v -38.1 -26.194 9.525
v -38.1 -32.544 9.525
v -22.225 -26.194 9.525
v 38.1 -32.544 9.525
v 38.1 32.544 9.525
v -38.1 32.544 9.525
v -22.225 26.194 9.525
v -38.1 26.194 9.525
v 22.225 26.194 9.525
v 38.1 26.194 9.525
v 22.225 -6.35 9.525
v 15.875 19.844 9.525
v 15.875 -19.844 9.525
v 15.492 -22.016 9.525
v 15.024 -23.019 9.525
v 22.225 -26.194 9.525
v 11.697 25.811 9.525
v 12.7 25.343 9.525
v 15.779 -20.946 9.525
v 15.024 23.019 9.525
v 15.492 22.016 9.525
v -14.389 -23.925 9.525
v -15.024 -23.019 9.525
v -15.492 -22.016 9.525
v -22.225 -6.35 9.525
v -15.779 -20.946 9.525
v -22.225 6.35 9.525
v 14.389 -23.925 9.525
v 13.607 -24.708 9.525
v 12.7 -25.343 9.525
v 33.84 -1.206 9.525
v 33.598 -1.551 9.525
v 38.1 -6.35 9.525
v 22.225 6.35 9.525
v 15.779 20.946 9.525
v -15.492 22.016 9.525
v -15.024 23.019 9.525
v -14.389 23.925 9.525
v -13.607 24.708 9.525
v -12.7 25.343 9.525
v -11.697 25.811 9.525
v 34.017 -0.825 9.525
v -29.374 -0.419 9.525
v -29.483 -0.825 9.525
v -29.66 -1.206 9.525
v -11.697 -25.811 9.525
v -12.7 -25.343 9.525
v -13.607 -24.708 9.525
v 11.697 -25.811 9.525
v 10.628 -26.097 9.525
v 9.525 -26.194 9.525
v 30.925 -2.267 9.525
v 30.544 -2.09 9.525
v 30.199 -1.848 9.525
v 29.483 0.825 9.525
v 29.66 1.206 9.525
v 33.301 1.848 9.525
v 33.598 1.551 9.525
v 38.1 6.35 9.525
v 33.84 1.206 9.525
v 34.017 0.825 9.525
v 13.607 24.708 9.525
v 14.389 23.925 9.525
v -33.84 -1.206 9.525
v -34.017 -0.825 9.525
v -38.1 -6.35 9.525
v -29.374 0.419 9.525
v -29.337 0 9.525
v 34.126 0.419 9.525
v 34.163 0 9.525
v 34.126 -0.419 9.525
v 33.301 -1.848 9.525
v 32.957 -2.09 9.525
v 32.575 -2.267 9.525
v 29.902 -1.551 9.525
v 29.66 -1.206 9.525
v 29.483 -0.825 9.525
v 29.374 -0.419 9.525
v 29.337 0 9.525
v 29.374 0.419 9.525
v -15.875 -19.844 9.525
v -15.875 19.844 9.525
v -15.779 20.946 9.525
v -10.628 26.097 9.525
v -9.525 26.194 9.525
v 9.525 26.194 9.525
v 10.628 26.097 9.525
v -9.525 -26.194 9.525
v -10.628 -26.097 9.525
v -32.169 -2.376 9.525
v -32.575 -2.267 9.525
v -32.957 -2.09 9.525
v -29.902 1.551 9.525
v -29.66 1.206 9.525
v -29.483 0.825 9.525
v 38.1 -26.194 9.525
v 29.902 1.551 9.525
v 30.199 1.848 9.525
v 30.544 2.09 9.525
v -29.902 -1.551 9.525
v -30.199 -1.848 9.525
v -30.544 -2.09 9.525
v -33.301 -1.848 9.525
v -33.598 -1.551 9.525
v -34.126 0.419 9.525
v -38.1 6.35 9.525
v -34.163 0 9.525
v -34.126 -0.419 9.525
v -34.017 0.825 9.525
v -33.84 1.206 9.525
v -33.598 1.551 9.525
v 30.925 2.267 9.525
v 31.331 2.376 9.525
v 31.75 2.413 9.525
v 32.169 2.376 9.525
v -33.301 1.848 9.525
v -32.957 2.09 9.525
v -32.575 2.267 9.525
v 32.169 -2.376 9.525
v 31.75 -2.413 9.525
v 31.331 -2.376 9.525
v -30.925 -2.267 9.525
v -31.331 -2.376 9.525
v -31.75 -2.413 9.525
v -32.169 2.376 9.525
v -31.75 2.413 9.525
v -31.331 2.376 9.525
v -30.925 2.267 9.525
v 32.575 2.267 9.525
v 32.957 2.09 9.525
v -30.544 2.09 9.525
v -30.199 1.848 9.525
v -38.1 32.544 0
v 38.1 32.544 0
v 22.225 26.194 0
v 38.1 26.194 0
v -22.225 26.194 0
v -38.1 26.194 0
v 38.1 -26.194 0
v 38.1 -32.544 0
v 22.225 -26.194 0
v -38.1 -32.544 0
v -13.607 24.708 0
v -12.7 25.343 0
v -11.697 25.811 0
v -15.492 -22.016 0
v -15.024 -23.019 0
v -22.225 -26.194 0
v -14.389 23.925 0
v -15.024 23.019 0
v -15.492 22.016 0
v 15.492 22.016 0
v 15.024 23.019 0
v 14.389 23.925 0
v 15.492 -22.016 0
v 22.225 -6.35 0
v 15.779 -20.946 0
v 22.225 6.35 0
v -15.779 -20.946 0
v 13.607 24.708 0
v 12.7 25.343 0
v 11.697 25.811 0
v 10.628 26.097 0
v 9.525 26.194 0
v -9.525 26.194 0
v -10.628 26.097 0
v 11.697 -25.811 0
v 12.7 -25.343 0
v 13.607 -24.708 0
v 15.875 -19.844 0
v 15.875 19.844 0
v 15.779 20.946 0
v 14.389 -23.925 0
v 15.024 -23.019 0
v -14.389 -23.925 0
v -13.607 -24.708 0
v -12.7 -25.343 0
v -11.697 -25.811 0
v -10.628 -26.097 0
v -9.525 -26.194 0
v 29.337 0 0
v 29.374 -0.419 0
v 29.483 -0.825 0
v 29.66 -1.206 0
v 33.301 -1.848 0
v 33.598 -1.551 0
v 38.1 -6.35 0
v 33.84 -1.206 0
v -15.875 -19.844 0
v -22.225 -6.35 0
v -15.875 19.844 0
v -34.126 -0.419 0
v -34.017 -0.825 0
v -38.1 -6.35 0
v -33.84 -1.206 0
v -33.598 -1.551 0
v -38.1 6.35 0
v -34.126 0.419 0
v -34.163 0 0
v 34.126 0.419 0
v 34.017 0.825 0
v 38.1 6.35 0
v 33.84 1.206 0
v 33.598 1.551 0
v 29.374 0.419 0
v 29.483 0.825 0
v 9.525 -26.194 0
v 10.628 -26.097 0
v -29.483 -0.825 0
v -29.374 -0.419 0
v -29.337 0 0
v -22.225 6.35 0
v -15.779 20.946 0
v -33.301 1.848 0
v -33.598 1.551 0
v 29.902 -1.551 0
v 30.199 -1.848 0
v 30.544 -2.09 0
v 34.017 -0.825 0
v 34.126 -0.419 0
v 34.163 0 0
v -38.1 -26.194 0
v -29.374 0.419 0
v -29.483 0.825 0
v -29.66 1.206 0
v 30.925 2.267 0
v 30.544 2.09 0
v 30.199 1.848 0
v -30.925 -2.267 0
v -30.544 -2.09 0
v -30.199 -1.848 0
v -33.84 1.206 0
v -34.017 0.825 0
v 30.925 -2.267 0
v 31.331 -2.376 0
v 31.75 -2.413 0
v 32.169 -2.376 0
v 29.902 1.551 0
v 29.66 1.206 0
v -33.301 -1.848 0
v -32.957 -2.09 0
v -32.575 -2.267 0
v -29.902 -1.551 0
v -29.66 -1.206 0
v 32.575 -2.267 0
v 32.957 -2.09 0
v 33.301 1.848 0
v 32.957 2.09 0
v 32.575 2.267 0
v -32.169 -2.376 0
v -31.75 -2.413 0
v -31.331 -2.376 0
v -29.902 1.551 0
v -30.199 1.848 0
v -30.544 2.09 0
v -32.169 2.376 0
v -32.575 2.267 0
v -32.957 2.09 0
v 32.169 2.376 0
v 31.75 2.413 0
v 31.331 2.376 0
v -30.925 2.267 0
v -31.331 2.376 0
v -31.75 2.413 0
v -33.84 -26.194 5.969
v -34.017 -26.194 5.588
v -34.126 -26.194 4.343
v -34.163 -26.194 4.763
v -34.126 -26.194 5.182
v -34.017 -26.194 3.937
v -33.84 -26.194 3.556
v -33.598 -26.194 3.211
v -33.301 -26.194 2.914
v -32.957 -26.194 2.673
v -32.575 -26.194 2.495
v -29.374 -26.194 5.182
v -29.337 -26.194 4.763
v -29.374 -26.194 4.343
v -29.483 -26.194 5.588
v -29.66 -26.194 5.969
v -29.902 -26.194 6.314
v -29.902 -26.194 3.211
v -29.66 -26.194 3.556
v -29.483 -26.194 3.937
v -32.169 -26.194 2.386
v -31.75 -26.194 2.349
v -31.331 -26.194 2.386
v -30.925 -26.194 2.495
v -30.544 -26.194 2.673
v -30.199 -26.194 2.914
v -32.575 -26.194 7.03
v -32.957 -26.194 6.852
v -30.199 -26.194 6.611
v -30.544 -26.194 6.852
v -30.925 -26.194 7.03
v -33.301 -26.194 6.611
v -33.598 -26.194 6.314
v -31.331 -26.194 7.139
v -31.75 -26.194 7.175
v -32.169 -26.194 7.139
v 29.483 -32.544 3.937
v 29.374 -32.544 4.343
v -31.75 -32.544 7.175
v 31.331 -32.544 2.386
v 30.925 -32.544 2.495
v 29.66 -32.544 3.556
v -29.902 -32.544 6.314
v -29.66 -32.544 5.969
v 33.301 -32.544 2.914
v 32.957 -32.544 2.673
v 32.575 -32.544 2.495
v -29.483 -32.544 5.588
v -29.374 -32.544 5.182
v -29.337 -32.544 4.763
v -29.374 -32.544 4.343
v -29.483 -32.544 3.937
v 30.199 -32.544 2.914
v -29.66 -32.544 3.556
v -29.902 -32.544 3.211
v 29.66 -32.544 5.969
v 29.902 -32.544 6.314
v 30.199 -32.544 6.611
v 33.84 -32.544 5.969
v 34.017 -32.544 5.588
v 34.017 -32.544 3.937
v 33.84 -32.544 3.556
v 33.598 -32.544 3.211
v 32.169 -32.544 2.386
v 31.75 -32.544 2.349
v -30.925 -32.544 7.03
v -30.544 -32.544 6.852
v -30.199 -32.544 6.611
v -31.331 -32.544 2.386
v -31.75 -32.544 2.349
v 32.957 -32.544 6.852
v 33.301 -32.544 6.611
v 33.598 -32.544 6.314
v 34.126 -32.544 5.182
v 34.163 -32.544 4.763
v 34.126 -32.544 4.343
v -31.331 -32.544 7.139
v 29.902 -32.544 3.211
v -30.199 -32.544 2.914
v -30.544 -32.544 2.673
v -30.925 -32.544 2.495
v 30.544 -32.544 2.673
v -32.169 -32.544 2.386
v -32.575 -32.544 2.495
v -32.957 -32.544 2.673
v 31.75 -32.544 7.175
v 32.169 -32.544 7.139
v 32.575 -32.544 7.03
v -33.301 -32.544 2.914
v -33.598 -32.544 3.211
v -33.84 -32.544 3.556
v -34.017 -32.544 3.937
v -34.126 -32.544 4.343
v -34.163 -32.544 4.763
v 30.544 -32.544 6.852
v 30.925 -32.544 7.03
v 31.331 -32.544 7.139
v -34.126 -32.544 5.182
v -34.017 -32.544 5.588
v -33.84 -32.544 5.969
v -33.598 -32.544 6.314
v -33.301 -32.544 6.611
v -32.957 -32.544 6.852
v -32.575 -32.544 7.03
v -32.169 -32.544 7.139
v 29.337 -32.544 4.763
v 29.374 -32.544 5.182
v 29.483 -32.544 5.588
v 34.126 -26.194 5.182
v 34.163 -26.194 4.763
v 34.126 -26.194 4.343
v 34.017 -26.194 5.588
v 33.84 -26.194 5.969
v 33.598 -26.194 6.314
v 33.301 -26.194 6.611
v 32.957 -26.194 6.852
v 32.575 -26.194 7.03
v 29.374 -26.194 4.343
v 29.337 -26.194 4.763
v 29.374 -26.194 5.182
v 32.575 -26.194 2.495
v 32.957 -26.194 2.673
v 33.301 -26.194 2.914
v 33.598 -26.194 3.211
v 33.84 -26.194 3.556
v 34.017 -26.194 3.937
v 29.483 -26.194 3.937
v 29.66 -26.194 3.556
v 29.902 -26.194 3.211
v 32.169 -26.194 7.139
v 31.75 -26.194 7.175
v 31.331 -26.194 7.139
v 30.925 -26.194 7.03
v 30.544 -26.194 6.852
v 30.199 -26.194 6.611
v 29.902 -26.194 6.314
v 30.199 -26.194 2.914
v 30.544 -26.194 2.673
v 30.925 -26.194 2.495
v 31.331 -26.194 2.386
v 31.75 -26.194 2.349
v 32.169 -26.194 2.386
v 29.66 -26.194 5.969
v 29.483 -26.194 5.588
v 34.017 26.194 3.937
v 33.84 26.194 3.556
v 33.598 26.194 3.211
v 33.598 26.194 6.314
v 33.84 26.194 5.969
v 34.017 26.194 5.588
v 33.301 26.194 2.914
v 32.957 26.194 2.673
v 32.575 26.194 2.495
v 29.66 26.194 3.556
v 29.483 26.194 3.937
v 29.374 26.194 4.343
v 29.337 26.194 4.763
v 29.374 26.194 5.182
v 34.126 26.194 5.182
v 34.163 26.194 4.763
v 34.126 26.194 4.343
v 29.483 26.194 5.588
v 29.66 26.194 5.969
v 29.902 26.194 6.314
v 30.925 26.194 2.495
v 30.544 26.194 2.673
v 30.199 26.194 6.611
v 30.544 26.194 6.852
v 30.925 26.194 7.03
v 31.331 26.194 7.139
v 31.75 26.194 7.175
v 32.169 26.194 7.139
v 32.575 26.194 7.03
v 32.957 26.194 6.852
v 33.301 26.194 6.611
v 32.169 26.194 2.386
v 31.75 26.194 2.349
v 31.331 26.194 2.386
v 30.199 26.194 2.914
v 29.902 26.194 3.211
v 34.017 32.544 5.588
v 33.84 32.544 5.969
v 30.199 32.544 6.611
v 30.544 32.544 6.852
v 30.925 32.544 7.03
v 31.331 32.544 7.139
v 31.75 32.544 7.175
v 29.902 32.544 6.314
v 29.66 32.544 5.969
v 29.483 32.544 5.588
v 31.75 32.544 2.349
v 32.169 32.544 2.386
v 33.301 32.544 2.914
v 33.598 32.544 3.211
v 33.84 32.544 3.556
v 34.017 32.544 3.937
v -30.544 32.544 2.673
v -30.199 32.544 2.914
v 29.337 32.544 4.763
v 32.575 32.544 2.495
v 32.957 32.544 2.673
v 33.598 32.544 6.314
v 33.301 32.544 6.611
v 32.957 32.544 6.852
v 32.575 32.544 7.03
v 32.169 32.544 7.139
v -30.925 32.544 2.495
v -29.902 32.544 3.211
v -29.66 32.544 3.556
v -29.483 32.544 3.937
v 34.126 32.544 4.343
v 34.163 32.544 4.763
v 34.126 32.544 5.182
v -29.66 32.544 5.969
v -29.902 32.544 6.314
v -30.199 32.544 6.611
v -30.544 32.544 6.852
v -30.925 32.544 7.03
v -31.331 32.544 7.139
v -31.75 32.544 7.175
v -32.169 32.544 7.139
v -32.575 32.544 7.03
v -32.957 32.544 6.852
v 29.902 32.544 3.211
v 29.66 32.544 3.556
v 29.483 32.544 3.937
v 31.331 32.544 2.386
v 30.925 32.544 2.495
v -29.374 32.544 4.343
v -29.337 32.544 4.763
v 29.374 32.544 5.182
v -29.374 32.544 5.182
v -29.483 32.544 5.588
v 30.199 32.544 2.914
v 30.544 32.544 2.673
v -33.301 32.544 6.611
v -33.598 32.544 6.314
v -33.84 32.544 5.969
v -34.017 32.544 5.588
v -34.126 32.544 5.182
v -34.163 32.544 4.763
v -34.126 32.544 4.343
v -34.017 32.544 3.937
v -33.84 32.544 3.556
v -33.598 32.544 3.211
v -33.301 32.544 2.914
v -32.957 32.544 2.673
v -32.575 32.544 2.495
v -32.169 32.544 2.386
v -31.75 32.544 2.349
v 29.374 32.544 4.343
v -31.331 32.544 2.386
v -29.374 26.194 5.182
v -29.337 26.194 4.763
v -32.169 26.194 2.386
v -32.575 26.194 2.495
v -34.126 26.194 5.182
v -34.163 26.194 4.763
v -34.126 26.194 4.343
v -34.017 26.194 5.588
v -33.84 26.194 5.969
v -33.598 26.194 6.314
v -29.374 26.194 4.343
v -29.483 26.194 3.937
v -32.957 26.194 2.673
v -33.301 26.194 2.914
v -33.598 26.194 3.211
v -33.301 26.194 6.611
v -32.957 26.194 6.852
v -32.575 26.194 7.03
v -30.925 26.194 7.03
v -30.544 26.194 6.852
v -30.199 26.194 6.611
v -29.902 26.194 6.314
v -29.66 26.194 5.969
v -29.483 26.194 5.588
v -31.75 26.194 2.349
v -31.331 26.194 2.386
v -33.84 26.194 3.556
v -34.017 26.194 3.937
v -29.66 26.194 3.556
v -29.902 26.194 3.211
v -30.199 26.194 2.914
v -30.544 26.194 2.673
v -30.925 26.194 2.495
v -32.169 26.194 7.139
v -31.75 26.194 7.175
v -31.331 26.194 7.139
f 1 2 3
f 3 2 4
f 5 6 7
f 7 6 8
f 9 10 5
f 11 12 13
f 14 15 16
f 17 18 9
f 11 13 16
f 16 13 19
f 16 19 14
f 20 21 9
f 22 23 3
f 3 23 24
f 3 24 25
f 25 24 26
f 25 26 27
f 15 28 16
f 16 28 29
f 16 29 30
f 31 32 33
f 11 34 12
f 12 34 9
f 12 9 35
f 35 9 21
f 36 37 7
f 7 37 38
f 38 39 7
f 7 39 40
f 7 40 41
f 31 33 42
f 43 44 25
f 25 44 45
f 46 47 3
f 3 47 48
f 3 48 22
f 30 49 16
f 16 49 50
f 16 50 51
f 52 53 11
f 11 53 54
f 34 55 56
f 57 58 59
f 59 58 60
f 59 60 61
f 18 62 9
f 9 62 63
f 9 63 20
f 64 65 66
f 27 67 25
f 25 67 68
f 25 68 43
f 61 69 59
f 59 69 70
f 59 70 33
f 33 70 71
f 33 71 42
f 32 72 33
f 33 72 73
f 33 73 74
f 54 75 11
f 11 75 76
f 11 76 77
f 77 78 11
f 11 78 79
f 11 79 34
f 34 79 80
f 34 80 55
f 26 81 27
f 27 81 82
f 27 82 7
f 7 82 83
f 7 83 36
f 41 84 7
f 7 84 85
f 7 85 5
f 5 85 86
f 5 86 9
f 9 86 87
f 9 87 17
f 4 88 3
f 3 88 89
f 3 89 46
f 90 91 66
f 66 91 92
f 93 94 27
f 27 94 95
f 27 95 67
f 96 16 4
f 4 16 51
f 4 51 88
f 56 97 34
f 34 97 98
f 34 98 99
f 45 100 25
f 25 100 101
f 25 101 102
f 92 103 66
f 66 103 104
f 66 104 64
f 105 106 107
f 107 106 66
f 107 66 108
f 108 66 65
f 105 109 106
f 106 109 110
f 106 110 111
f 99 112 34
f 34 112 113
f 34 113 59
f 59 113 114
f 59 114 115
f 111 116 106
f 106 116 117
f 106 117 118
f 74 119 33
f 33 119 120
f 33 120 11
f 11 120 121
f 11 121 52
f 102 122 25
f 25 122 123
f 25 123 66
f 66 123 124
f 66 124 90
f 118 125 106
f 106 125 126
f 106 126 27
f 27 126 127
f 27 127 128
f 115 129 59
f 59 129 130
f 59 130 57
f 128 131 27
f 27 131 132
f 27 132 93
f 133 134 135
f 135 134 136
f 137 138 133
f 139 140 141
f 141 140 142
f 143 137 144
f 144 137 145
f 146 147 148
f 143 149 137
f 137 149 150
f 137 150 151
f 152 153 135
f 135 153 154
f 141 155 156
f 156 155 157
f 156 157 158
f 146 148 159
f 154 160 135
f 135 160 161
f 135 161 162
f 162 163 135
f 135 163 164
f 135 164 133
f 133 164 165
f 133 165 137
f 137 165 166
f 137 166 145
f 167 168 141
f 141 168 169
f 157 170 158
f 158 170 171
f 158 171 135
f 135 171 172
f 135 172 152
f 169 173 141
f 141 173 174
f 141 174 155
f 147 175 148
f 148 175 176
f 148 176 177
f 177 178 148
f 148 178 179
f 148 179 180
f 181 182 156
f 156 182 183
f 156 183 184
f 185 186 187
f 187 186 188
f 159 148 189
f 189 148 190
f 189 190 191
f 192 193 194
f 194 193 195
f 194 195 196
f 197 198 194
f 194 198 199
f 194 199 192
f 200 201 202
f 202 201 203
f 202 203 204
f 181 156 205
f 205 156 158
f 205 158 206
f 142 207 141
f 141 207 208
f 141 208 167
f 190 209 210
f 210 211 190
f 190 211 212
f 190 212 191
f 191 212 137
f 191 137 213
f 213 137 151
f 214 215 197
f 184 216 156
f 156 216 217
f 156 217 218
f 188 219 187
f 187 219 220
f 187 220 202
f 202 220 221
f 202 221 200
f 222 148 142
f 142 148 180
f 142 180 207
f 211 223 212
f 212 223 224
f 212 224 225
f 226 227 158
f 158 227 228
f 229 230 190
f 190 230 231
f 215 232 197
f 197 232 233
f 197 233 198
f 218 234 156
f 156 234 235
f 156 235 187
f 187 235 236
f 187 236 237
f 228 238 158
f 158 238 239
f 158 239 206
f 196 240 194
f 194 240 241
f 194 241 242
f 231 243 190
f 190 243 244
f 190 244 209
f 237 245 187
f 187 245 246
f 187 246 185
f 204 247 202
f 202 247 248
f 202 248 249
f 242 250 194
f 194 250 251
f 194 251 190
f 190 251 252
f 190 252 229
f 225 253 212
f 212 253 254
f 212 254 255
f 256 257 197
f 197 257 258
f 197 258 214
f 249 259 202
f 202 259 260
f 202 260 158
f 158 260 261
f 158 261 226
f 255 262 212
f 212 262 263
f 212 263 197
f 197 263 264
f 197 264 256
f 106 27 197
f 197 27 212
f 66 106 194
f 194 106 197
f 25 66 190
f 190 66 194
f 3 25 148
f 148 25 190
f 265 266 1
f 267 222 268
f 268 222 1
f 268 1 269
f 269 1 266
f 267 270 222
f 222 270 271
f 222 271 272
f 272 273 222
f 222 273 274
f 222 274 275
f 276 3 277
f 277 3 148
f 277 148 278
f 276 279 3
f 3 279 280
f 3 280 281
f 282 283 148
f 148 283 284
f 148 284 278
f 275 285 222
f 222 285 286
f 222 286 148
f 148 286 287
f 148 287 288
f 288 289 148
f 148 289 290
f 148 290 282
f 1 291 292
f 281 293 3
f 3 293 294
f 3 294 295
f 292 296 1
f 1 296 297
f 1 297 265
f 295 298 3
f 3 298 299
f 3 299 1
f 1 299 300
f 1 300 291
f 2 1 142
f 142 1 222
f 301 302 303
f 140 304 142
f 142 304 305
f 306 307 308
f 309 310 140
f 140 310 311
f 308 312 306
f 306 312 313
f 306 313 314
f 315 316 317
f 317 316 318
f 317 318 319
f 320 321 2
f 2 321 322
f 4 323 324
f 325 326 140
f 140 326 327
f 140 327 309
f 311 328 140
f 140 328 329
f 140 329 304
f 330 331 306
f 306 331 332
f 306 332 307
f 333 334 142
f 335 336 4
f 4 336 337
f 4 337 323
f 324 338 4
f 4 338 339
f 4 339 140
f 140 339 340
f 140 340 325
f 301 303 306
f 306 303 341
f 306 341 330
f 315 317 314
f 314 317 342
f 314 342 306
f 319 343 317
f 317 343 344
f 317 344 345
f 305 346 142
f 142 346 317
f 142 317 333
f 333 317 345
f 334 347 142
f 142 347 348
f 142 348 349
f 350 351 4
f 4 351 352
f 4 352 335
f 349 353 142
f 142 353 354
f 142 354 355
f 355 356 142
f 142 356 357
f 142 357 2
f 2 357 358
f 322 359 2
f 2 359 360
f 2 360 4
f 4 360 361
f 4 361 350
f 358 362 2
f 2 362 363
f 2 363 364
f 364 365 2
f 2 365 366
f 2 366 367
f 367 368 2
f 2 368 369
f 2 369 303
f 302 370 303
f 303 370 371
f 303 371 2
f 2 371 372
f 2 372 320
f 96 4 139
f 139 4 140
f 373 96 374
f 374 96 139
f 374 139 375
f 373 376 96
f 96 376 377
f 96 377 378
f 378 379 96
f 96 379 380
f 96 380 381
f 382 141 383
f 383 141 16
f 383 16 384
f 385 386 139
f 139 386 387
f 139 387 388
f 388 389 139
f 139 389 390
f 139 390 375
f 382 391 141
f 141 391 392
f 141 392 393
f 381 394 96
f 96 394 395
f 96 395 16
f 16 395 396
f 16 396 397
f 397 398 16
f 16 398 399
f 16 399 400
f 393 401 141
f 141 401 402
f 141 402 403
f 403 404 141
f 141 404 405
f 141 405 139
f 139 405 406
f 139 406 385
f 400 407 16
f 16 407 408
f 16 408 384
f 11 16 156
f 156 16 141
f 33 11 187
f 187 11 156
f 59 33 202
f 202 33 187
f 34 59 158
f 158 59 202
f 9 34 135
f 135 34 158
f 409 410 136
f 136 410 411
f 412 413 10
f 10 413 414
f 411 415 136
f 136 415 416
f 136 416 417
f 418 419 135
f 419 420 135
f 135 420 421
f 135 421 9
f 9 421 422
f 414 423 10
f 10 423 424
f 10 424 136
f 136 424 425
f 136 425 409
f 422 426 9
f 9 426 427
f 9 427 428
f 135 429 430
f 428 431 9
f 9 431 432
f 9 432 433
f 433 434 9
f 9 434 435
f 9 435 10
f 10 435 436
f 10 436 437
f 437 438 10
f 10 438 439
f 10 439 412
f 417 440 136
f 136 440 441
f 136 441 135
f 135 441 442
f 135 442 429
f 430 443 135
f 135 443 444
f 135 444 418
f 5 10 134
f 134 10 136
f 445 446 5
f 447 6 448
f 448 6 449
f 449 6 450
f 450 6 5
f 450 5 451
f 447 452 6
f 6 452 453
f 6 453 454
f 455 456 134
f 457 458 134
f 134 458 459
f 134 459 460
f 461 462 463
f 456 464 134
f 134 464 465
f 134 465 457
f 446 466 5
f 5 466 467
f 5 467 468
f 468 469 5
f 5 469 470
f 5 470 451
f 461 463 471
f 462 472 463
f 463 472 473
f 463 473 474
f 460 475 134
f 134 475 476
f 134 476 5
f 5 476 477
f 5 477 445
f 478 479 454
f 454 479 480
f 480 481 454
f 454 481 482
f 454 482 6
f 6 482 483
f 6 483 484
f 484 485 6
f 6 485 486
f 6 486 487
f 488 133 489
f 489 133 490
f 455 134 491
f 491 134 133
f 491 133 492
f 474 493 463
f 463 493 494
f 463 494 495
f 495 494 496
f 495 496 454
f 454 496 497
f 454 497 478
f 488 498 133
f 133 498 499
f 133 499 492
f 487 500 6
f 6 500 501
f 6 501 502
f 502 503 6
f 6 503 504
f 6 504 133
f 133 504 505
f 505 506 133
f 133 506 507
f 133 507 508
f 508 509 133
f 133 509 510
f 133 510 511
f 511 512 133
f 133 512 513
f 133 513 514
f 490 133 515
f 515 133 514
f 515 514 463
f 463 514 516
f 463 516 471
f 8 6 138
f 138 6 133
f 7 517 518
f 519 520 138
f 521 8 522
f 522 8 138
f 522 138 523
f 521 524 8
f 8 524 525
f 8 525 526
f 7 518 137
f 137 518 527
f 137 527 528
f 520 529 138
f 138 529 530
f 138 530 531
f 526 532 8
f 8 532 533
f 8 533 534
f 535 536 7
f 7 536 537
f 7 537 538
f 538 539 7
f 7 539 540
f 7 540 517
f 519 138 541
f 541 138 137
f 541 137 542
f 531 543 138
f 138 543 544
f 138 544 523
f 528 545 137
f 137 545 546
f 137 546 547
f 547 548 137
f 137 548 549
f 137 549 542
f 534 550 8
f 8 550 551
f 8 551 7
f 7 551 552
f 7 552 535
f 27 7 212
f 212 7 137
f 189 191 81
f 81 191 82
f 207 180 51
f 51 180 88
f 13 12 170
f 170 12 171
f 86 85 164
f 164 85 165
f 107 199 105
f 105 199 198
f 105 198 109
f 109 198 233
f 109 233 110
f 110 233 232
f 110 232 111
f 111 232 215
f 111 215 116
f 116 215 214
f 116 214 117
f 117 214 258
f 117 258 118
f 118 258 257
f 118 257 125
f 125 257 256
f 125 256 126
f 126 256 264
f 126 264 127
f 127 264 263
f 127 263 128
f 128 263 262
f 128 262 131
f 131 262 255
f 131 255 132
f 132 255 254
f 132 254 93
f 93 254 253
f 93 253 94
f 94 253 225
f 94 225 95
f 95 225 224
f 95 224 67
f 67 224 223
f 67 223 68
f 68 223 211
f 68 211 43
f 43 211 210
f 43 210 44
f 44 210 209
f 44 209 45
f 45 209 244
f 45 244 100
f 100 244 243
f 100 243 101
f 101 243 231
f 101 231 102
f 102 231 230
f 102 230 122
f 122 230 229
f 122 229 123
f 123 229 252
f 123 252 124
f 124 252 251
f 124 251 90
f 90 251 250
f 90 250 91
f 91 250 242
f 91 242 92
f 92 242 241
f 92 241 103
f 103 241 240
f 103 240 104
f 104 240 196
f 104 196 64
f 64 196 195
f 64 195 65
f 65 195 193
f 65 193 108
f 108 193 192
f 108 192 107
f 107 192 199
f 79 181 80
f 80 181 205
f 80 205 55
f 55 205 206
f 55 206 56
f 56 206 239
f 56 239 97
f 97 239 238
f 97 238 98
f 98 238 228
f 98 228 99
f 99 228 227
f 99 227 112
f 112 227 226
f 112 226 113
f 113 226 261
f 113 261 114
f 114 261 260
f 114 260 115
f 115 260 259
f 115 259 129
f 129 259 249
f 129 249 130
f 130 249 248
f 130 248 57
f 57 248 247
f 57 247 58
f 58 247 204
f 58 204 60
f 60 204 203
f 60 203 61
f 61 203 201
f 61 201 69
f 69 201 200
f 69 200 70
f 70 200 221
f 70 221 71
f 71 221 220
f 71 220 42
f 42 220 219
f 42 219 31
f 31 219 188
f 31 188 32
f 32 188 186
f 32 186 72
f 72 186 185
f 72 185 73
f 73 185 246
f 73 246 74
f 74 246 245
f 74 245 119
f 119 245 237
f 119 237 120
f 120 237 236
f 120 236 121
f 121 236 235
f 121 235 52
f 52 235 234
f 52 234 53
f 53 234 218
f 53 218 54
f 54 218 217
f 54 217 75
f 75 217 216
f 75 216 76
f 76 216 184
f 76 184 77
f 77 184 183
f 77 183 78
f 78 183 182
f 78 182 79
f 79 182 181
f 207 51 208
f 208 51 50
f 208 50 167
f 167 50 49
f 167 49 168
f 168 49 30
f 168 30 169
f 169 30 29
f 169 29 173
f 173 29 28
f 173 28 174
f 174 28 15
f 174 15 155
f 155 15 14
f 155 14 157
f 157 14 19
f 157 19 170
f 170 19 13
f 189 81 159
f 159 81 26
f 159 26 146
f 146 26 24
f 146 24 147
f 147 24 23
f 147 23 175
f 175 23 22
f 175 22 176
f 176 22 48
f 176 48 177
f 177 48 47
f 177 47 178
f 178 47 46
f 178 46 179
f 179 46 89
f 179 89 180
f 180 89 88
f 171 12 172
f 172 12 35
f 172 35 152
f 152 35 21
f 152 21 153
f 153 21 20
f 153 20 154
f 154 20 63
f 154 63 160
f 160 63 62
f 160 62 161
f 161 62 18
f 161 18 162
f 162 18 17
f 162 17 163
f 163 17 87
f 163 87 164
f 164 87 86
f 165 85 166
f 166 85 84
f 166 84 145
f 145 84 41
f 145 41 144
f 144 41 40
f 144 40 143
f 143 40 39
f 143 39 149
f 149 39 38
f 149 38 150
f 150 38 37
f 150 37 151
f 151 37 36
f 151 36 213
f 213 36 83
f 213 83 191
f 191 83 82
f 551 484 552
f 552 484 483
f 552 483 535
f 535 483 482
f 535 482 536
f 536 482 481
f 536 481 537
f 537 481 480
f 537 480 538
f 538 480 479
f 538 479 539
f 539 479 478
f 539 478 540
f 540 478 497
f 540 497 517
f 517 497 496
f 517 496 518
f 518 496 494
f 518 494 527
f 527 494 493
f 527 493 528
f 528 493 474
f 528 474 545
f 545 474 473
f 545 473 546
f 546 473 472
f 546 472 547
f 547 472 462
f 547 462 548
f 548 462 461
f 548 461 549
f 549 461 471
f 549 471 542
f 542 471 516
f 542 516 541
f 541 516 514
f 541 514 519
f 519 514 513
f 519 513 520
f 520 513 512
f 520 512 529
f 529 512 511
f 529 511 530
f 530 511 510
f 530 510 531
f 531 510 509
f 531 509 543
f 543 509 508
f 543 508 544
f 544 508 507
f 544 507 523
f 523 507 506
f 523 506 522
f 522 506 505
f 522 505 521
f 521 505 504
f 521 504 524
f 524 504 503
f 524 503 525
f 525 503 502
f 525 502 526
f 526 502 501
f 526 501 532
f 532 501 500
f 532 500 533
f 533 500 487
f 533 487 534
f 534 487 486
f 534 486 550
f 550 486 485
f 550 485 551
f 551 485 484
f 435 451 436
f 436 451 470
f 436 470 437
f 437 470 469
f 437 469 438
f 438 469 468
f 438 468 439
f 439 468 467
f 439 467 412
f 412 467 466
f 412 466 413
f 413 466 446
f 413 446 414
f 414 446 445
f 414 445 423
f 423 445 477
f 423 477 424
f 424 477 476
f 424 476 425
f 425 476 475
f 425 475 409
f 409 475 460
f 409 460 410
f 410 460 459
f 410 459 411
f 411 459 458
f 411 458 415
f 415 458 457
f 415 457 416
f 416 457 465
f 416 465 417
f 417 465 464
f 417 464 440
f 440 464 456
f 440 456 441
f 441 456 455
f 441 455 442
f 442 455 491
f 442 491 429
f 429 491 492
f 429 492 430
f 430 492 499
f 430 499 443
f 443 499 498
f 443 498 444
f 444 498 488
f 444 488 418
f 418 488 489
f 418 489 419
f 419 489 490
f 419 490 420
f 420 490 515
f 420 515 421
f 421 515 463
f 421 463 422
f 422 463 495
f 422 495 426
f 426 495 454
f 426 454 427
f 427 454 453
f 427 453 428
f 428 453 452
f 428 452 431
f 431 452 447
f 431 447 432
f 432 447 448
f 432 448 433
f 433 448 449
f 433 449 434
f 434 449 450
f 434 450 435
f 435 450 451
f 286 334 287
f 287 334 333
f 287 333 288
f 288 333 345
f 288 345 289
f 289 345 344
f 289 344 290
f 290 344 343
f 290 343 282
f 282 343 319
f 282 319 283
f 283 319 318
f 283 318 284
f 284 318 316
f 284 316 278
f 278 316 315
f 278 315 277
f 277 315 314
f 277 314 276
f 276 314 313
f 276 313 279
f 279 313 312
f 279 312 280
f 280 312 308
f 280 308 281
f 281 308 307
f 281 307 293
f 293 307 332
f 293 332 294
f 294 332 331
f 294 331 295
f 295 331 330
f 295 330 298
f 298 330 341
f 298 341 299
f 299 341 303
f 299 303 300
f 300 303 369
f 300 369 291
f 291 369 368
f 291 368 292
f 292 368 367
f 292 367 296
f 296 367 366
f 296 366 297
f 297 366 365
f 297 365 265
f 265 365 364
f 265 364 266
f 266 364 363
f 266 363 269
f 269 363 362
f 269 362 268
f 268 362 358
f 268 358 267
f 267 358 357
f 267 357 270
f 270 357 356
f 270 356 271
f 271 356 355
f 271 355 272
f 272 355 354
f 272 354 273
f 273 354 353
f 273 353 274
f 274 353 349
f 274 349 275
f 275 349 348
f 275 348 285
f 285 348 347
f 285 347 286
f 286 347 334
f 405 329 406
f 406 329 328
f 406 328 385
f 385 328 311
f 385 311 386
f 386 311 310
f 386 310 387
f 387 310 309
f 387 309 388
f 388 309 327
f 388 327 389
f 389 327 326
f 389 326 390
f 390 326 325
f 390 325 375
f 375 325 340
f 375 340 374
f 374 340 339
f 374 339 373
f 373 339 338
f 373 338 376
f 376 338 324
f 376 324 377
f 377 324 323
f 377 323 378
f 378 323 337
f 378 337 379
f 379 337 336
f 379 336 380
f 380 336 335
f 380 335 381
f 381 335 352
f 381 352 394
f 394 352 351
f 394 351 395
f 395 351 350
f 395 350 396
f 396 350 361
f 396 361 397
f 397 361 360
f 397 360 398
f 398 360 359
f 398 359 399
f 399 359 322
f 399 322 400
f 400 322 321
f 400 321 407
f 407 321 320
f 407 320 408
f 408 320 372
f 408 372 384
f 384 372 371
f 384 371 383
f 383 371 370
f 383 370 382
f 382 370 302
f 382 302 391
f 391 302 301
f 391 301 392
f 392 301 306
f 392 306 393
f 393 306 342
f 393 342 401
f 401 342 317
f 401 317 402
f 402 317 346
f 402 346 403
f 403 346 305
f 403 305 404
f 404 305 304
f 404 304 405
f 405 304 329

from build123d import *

# Parameters (mm, degrees)
SKETCH2_R           = 2.413
SKETCH2_W           = 31.75
SKETCH2_H           = 52.3875
BOSS_EXTRUDE1_DEPTH = 9.525
FILLET1_R           = 6.35
CUT_EXTRUDE1_REACH  = 78.018
SKETCH3_R           = 2.413
CUT_EXTRUDE2_REACH  = 78.018
SKETCH4_R           = 2.413


with BuildPart() as part:
    # Sketch2 → Boss-Extrude1 (new body)
    with BuildSketch(Plane.XY):
        Polygon((-22.225, -26.19375), (-22.225, -6.35), (-38.1, -6.35), (-38.1, 6.35), (-22.225, 6.35), (-22.225, 26.19375), (-38.1, 26.19375), (-38.1, 32.54375), (38.1, 32.54375), (38.1, 26.19375), (22.225, 26.19375), (22.225, 6.35), (38.1, 6.35), (38.1, -6.35), (22.225, -6.35), (22.225, -26.19375), (38.1, -26.19375), (38.1, -32.54375), (-38.1, -32.54375), (-38.1, -26.19375), align=None)
        with Locations(Location((-31.75, 0, 0), (0, 0, 180))):
            Circle(SKETCH2_R, mode=Mode.SUBTRACT)
        with Locations(Location((31.75, 0, 0), (0, 0, 180))):
            Circle(SKETCH2_R, mode=Mode.SUBTRACT)
        Rectangle(SKETCH2_W, SKETCH2_H, mode=Mode.SUBTRACT)
    extrude(amount=BOSS_EXTRUDE1_DEPTH)

    # Fillet1
    fillet1_edges = [part.edges().sort_by_distance(p)[0] for p in [
        (-15.875, 26.19375, 4.7625),
        (-15.875, -26.19375, 4.7625),
        (15.875, -26.19375, 4.7625),
        (15.875, 26.19375, 4.7625),
    ]]
    fillet(fillet1_edges, radius=FILLET1_R)

    # Sketch3 → Cut-Extrude1 (cut, up to next)
    with BuildSketch(Plane(origin=(0, 32.54375, 0), x_dir=(1, 0, 0), z_dir=(0, 1, 0)), mode=Mode.PRIVATE) as cut_extrude1_sk1:
        with Locations(Location((-31.75, -4.7625, 0), (0, 0, 270))):
            Circle(SKETCH3_R)
    cut_extrude1_tool1 = extrude(cut_extrude1_sk1.sketch, amount=-CUT_EXTRUDE1_REACH, mode=Mode.PRIVATE) & part.part
    # Sketch3 → Cut-Extrude1 (cut, up to next)
    with BuildSketch(Plane(origin=(0, 32.54375, 0), x_dir=(1, 0, 0), z_dir=(0, 1, 0)), mode=Mode.PRIVATE) as cut_extrude1_sk2:
        with Locations(Location((31.75, -4.7625, 0), (0, 0, 270))):
            Circle(SKETCH3_R)
    cut_extrude1_tool2 = extrude(cut_extrude1_sk2.sketch, amount=-CUT_EXTRUDE1_REACH, mode=Mode.PRIVATE) & part.part
    add(cut_extrude1_tool1.solids().sort_by_distance((-31.75, 32.54375, 4.7625))[0], mode=Mode.SUBTRACT)
    add(cut_extrude1_tool2.solids().sort_by_distance((31.75, 32.54375, 4.7625))[0], mode=Mode.SUBTRACT)

    # Sketch4 → Cut-Extrude2 (cut, up to next)
    with BuildSketch(Plane.XZ.offset(32.54375), mode=Mode.PRIVATE) as cut_extrude2_sk1:
        with Locations(Location((-31.75, 4.7625, 0), (0, 0, 90))):
            Circle(SKETCH4_R)
    cut_extrude2_tool1 = extrude(cut_extrude2_sk1.sketch, amount=-CUT_EXTRUDE2_REACH, mode=Mode.PRIVATE) & part.part
    # Sketch4 → Cut-Extrude2 (cut, up to next)
    with BuildSketch(Plane.XZ.offset(32.54375), mode=Mode.PRIVATE) as cut_extrude2_sk2:
        with Locations(Location((31.75, 4.7625, 0), (0, 0, 90))):
            Circle(SKETCH4_R)
    cut_extrude2_tool2 = extrude(cut_extrude2_sk2.sketch, amount=-CUT_EXTRUDE2_REACH, mode=Mode.PRIVATE) & part.part
    add(cut_extrude2_tool1.solids().sort_by_distance((-31.75, -32.54375, 4.7625))[0], mode=Mode.SUBTRACT)
    add(cut_extrude2_tool2.solids().sort_by_distance((31.75, -32.54375, 4.7625))[0], mode=Mode.SUBTRACT)


solid = part.part
